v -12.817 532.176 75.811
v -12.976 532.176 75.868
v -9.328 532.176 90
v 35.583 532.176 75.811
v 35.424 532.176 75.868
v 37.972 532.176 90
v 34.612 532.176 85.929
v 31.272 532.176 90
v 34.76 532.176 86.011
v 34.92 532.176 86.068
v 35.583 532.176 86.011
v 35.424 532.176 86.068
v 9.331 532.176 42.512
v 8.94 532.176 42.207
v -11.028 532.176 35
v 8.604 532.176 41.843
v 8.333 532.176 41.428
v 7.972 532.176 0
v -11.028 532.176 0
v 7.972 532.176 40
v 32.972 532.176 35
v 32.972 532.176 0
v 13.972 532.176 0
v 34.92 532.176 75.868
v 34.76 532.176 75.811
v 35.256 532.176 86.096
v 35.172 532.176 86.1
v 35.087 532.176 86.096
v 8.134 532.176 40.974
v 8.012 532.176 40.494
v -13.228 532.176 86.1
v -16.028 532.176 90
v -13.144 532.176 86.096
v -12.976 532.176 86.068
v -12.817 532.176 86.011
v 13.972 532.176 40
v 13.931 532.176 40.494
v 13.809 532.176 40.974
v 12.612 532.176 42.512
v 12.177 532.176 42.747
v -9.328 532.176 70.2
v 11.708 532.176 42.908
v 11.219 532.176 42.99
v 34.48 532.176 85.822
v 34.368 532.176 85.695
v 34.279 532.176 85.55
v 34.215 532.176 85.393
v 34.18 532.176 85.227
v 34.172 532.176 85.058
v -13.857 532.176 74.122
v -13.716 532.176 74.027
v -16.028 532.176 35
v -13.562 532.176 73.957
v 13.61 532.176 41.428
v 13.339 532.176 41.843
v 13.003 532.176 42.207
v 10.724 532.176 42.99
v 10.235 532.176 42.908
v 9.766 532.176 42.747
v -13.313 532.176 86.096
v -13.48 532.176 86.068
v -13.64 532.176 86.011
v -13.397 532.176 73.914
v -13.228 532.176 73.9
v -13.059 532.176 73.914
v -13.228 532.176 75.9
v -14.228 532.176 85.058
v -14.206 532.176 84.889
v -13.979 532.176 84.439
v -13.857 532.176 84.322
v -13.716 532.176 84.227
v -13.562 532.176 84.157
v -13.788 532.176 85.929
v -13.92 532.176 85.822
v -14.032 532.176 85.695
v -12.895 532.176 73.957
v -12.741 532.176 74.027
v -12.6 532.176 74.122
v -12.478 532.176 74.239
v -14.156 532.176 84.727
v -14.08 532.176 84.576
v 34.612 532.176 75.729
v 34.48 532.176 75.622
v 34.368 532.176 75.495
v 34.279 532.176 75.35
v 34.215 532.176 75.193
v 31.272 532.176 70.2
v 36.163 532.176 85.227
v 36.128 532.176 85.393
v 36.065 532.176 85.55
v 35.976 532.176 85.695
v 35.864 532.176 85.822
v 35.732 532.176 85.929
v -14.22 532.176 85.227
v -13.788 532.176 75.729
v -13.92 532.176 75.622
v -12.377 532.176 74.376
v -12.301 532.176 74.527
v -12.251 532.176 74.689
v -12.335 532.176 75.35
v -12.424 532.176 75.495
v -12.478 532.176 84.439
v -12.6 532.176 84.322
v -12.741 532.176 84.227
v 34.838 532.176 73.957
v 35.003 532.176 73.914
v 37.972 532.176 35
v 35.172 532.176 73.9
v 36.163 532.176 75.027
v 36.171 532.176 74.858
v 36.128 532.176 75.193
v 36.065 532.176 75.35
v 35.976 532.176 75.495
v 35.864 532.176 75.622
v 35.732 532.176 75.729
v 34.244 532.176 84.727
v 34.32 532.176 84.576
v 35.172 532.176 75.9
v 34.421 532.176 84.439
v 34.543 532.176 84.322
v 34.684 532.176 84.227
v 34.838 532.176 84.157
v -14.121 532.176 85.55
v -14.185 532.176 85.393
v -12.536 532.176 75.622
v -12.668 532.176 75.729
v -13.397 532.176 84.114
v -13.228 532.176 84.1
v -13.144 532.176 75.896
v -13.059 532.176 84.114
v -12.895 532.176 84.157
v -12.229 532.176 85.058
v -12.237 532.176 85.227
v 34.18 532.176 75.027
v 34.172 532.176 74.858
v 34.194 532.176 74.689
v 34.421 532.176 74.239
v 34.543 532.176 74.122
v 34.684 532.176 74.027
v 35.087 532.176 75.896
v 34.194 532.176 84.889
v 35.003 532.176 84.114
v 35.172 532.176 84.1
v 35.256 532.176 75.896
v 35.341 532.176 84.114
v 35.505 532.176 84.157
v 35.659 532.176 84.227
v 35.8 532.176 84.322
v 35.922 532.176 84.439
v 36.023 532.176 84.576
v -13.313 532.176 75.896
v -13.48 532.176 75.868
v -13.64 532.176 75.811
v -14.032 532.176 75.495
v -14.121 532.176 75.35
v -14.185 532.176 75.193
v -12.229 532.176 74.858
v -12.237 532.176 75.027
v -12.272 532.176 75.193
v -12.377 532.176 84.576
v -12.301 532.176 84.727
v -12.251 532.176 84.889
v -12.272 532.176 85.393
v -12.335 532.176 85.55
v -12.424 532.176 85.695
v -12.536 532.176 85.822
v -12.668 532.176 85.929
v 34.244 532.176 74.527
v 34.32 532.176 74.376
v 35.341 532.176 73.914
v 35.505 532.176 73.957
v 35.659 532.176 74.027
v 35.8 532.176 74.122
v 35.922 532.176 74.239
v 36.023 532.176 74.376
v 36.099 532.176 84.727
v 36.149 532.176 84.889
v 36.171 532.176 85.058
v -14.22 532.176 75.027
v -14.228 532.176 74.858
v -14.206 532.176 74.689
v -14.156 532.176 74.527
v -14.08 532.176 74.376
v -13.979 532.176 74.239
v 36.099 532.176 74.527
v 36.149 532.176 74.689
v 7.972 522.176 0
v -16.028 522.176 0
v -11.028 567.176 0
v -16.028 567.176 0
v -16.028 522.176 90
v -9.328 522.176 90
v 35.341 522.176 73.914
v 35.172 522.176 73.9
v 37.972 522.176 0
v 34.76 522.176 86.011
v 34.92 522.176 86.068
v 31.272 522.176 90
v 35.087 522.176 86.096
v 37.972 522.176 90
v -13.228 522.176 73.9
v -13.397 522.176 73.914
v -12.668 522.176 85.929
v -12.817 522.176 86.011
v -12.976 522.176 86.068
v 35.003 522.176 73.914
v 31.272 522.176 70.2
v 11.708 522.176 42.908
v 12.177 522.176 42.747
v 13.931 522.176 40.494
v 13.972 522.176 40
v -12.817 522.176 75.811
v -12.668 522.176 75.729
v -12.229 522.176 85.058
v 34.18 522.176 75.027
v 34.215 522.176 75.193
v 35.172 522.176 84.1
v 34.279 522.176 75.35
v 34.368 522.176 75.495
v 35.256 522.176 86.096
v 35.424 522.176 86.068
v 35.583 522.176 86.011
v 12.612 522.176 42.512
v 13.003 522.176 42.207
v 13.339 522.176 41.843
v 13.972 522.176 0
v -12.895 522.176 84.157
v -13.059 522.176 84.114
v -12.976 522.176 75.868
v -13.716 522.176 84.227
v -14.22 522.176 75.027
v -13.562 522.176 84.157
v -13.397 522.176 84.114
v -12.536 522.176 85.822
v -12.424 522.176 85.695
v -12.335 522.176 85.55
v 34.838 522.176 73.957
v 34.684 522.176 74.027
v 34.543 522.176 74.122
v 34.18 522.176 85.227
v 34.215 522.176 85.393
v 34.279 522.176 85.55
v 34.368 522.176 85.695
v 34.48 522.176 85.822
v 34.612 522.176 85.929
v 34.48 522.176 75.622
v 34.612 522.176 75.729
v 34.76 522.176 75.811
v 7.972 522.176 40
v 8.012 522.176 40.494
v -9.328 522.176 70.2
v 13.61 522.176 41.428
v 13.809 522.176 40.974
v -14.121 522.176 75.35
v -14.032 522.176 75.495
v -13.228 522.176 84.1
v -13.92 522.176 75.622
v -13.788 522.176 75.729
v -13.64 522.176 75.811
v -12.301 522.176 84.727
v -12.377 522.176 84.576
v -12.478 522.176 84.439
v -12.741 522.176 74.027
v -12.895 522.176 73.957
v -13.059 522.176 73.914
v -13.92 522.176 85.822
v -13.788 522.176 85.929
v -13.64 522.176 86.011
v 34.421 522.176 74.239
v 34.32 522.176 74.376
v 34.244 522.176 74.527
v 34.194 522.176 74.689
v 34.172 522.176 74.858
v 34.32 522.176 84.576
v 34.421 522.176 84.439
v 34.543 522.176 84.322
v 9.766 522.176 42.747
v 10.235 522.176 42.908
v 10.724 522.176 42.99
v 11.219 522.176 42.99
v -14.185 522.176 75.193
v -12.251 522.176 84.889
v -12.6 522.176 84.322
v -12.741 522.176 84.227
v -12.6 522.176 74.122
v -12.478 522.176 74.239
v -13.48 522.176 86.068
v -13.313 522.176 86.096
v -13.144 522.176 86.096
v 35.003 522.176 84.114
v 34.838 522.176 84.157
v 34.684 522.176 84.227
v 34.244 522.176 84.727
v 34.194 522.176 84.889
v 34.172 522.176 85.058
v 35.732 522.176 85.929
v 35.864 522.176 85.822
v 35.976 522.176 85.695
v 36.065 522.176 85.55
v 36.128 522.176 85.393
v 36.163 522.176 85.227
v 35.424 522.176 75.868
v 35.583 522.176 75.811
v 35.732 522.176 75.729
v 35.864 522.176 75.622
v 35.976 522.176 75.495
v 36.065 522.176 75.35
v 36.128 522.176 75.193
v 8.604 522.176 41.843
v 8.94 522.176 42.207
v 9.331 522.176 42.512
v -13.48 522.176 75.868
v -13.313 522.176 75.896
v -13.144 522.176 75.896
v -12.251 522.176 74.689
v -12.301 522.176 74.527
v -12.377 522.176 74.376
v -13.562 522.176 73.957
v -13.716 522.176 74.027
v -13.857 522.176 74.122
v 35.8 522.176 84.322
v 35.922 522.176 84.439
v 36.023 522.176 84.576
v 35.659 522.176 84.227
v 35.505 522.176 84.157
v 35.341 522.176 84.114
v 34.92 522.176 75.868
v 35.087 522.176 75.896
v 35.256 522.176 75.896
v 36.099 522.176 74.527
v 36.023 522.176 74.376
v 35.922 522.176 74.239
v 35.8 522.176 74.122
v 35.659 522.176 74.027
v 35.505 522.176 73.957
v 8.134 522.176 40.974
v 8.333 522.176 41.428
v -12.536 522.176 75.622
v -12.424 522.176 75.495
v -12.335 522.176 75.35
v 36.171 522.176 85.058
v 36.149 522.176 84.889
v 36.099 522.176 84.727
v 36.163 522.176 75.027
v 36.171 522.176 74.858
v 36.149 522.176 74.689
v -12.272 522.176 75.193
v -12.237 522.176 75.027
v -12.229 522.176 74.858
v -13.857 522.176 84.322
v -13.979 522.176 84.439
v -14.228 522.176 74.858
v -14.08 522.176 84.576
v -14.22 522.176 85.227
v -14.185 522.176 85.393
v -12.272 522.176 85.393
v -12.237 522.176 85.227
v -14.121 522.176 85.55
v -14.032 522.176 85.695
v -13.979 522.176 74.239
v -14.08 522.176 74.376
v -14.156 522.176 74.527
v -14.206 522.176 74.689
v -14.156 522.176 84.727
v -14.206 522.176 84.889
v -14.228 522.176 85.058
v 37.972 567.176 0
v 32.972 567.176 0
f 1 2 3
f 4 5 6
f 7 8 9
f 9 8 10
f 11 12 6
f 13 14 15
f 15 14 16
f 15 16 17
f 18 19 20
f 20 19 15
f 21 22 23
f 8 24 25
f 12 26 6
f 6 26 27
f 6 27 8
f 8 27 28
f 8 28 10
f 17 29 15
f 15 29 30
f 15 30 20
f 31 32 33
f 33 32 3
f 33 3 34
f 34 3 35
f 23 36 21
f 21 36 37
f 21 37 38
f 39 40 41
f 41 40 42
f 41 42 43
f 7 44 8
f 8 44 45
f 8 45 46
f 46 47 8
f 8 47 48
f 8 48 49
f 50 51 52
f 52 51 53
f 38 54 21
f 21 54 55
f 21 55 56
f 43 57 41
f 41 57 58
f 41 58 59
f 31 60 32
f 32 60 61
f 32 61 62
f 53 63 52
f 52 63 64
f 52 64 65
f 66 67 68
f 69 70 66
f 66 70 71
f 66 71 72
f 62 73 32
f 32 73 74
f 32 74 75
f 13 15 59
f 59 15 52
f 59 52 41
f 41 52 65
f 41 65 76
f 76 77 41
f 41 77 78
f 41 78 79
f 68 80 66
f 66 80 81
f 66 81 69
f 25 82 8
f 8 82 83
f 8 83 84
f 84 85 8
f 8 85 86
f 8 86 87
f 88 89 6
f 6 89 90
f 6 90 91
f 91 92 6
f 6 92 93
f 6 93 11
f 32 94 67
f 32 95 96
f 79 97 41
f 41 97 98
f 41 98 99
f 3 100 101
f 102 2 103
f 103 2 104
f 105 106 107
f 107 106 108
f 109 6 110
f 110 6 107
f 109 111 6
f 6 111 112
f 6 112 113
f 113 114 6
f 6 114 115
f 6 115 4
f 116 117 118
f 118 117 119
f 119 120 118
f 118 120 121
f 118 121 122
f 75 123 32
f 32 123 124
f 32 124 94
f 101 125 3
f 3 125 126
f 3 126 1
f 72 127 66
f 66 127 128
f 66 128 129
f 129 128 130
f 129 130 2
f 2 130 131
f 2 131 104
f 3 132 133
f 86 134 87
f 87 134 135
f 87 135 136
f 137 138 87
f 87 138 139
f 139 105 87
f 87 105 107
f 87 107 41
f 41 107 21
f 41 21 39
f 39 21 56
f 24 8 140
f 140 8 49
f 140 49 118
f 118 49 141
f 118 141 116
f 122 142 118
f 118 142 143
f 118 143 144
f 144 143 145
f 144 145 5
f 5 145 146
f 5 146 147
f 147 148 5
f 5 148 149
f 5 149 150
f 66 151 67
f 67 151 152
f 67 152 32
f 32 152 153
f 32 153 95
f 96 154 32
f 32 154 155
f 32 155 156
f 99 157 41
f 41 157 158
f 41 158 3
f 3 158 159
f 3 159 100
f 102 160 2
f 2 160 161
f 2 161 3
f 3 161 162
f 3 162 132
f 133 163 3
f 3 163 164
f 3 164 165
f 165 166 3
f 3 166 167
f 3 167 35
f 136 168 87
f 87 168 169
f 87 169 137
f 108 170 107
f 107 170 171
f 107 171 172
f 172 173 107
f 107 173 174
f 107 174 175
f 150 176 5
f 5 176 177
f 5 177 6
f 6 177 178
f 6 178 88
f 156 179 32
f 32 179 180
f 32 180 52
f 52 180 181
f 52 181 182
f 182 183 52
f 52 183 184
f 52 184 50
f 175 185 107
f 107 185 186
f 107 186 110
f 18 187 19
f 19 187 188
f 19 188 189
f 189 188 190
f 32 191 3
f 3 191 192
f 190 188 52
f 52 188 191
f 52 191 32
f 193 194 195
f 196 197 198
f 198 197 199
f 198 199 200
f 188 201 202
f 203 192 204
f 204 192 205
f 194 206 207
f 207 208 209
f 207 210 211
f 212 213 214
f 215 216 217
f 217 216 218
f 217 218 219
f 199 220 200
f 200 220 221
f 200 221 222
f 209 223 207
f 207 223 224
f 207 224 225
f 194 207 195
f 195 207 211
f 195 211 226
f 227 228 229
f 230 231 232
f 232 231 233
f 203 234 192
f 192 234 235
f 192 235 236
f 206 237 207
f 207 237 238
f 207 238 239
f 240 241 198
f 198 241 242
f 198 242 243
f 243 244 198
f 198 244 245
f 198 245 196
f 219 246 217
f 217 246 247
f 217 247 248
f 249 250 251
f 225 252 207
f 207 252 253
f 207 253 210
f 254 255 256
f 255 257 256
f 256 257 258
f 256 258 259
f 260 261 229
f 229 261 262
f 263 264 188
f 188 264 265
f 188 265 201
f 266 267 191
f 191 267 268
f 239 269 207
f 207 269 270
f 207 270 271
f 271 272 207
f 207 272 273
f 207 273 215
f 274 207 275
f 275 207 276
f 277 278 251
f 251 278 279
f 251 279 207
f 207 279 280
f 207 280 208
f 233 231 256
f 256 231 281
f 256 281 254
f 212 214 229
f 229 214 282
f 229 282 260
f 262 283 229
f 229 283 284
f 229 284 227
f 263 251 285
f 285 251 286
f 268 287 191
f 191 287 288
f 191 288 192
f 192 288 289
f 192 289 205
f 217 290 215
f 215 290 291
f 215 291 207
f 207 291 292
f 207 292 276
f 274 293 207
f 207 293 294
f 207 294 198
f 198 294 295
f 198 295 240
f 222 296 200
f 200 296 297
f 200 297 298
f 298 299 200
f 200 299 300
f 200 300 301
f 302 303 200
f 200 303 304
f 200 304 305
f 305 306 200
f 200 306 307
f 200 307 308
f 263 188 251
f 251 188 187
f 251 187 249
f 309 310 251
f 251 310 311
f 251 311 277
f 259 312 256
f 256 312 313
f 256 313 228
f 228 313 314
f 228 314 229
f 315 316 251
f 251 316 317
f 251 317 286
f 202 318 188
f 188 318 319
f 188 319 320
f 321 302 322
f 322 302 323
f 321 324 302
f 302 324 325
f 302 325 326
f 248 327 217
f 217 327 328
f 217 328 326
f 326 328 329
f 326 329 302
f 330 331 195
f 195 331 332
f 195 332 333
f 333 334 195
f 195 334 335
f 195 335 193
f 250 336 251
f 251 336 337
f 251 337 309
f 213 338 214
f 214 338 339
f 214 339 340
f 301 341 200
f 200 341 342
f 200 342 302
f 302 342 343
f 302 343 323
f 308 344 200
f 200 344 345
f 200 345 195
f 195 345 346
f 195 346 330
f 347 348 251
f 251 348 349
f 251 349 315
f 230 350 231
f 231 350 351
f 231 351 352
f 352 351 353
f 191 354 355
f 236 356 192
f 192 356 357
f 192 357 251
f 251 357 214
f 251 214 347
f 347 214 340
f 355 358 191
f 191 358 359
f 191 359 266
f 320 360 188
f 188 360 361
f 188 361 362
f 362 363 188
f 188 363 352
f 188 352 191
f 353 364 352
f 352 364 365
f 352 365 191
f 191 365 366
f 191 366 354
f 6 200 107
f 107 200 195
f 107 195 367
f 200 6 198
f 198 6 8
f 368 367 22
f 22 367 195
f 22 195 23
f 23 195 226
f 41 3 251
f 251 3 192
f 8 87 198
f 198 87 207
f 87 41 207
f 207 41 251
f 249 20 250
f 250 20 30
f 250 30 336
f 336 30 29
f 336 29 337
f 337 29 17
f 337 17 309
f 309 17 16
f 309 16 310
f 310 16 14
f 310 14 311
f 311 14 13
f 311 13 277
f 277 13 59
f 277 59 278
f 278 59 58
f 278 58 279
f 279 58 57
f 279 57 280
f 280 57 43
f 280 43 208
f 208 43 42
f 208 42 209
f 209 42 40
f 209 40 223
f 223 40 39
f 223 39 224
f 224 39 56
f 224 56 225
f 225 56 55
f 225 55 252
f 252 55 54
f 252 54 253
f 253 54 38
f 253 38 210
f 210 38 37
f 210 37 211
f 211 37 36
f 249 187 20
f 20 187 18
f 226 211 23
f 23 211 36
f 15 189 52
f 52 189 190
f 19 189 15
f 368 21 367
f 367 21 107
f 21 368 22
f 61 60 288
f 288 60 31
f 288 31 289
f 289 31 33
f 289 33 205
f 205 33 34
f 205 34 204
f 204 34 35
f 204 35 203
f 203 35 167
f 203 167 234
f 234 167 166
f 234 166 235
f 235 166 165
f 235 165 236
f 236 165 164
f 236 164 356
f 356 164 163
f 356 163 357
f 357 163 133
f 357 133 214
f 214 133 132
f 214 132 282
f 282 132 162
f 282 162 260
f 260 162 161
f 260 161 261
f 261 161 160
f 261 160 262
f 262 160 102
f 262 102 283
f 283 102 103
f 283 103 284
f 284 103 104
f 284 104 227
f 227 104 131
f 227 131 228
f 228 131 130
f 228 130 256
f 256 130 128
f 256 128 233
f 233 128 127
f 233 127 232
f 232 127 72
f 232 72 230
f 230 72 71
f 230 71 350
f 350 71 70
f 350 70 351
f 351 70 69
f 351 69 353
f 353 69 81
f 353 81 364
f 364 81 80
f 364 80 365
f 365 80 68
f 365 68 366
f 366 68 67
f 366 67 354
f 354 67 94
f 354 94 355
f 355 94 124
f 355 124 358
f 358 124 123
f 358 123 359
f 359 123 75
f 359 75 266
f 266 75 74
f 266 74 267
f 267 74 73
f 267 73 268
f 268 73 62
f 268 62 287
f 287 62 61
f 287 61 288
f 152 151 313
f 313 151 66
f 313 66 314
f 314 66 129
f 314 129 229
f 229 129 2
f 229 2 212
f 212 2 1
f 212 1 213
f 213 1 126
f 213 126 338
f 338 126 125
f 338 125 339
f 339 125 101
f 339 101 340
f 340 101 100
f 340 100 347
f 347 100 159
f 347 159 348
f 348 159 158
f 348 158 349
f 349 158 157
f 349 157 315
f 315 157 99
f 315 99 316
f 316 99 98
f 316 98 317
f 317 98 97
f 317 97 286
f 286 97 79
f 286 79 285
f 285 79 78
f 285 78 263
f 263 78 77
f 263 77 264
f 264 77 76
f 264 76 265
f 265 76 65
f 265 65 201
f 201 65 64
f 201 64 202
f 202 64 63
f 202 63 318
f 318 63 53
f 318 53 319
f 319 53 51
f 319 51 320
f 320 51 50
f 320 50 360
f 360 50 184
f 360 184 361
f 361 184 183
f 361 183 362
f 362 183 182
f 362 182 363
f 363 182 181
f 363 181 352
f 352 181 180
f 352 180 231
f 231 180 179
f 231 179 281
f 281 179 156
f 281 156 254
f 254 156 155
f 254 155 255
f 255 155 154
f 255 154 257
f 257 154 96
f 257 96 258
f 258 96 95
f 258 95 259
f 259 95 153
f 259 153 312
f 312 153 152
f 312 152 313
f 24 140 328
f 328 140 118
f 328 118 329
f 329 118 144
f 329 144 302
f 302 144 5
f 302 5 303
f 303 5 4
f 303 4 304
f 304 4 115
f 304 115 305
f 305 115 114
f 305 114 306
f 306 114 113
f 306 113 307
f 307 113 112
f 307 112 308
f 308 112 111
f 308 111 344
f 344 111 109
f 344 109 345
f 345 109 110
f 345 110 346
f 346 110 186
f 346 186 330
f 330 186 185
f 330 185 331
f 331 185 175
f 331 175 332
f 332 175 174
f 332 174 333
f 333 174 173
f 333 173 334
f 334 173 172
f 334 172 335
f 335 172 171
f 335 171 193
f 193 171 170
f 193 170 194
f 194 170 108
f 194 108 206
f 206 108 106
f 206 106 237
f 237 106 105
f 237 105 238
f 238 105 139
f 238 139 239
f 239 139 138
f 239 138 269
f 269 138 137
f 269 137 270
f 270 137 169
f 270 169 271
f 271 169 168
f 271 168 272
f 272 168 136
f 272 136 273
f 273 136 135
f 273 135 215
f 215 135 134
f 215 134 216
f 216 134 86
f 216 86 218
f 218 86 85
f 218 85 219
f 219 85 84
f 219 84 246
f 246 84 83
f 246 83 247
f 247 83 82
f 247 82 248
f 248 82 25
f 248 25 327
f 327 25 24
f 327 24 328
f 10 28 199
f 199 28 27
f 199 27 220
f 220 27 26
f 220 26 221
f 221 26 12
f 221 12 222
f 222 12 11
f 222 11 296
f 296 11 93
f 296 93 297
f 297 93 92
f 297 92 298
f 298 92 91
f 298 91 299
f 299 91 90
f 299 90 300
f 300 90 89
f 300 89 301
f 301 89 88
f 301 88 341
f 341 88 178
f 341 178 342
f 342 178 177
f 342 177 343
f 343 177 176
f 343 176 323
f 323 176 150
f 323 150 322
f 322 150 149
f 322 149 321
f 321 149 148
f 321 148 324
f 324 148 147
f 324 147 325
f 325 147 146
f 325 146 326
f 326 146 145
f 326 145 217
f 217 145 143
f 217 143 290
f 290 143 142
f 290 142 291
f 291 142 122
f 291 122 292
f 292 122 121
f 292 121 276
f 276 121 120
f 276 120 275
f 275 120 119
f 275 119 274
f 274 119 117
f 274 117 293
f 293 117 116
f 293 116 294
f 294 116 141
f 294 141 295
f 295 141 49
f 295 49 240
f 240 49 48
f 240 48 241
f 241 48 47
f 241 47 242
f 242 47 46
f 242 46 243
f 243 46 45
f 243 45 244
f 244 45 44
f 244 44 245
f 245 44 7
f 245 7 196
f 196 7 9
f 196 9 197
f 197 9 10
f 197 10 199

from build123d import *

# Parameters (mm, degrees)
SKETCH1_W           = 54
SKETCH1_H           = 10
BOSS_EXTRUDE1_DEPTH = 90
SKETCH2_W           = 40.6
SKETCH2_H           = 19.8
CUT_EXTRUDE1_DEPTH  = 99.192875432
CUT_EXTRUDE2_DEPTH  = 99.192875432
BOSS_EXTRUDE4_DEPTH = 5
BOSS_EXTRUDE5_DEPTH = 5
SKETCH9_R           = 1
CUT_EXTRUDE3_DEPTH  = 108.549248187


with BuildPart() as part:
    # Sketch1 → Boss-Extrude1 (new body)
    with BuildSketch(Plane.XY):
        with Locations((10.971578656, 527.175634265)):
            Rectangle(SKETCH1_W, SKETCH1_H)
    extrude(amount=BOSS_EXTRUDE1_DEPTH)

    # Sketch2 → Cut-Extrude1 (cut, through all)
    with BuildSketch(Plane.XZ.offset(-522.175634265)):
        with Locations((10.971578656, 80.1)):
            Rectangle(SKETCH2_W, SKETCH2_H)
    extrude(amount=-CUT_EXTRUDE1_DEPTH, mode=Mode.SUBTRACT)

    # Sketch4 → Cut-Extrude2 (cut, through all)
    with BuildSketch(Plane(origin=(0, 532.175634265, 0), x_dir=(1, 0, 0), z_dir=(0, 1, 0))):
        with BuildLine():
            Line((7.971578656, -40), (7.971578656, 0))
            ThreePointArc((7.971578656, 0), (10.971578656, 3), (13.971578656, 0))
            Line((13.971578656, 0), (13.971578656, -40))
            ThreePointArc((13.971578656, -40), (10.971578656, -43), (7.971578656, -40))
        make_face()
    extrude(amount=-CUT_EXTRUDE2_DEPTH, mode=Mode.SUBTRACT)

    # Sketch7 → Boss-Extrude4 (add)
    with BuildSketch(Plane.ZY.offset(16.028421344)):
        Polygon((35, 532.175634265), (0, 567.175634265), (0, 532.175634265), align=None)
    extrude(amount=-BOSS_EXTRUDE4_DEPTH)

    # Sketch8 → Boss-Extrude5 (add)
    with BuildSketch(Plane(origin=(37.971578656, 0, 0), x_dir=(0, 0, -1), z_dir=(1, 0, 0))):
        Polygon((-35, 532.175634265), (0, 567.175634265), (0, 532.175634265), align=None)
    extrude(amount=-BOSS_EXTRUDE5_DEPTH)

    # Sketch9 → Cut-Extrude3 (cut, through all)
    with BuildSketch(Plane.XZ.offset(-522.175634265)):
        with Locations(Location((-13.228421344, 85.1, 0), (0, 0, 270))):
            Circle(SKETCH9_R)
        with Locations(Location((-13.228421344, 74.9, 0), (0, 0, 270))):
            Circle(SKETCH9_R)
        with Locations(Location((35.171578656, 74.9, 0), (0, 0, 270))):
            Circle(SKETCH9_R)
        with Locations(Location((35.171578656, 85.1, 0), (0, 0, 270))):
            Circle(SKETCH9_R)
    extrude(amount=-CUT_EXTRUDE3_DEPTH, mode=Mode.SUBTRACT)


solid = part.part
